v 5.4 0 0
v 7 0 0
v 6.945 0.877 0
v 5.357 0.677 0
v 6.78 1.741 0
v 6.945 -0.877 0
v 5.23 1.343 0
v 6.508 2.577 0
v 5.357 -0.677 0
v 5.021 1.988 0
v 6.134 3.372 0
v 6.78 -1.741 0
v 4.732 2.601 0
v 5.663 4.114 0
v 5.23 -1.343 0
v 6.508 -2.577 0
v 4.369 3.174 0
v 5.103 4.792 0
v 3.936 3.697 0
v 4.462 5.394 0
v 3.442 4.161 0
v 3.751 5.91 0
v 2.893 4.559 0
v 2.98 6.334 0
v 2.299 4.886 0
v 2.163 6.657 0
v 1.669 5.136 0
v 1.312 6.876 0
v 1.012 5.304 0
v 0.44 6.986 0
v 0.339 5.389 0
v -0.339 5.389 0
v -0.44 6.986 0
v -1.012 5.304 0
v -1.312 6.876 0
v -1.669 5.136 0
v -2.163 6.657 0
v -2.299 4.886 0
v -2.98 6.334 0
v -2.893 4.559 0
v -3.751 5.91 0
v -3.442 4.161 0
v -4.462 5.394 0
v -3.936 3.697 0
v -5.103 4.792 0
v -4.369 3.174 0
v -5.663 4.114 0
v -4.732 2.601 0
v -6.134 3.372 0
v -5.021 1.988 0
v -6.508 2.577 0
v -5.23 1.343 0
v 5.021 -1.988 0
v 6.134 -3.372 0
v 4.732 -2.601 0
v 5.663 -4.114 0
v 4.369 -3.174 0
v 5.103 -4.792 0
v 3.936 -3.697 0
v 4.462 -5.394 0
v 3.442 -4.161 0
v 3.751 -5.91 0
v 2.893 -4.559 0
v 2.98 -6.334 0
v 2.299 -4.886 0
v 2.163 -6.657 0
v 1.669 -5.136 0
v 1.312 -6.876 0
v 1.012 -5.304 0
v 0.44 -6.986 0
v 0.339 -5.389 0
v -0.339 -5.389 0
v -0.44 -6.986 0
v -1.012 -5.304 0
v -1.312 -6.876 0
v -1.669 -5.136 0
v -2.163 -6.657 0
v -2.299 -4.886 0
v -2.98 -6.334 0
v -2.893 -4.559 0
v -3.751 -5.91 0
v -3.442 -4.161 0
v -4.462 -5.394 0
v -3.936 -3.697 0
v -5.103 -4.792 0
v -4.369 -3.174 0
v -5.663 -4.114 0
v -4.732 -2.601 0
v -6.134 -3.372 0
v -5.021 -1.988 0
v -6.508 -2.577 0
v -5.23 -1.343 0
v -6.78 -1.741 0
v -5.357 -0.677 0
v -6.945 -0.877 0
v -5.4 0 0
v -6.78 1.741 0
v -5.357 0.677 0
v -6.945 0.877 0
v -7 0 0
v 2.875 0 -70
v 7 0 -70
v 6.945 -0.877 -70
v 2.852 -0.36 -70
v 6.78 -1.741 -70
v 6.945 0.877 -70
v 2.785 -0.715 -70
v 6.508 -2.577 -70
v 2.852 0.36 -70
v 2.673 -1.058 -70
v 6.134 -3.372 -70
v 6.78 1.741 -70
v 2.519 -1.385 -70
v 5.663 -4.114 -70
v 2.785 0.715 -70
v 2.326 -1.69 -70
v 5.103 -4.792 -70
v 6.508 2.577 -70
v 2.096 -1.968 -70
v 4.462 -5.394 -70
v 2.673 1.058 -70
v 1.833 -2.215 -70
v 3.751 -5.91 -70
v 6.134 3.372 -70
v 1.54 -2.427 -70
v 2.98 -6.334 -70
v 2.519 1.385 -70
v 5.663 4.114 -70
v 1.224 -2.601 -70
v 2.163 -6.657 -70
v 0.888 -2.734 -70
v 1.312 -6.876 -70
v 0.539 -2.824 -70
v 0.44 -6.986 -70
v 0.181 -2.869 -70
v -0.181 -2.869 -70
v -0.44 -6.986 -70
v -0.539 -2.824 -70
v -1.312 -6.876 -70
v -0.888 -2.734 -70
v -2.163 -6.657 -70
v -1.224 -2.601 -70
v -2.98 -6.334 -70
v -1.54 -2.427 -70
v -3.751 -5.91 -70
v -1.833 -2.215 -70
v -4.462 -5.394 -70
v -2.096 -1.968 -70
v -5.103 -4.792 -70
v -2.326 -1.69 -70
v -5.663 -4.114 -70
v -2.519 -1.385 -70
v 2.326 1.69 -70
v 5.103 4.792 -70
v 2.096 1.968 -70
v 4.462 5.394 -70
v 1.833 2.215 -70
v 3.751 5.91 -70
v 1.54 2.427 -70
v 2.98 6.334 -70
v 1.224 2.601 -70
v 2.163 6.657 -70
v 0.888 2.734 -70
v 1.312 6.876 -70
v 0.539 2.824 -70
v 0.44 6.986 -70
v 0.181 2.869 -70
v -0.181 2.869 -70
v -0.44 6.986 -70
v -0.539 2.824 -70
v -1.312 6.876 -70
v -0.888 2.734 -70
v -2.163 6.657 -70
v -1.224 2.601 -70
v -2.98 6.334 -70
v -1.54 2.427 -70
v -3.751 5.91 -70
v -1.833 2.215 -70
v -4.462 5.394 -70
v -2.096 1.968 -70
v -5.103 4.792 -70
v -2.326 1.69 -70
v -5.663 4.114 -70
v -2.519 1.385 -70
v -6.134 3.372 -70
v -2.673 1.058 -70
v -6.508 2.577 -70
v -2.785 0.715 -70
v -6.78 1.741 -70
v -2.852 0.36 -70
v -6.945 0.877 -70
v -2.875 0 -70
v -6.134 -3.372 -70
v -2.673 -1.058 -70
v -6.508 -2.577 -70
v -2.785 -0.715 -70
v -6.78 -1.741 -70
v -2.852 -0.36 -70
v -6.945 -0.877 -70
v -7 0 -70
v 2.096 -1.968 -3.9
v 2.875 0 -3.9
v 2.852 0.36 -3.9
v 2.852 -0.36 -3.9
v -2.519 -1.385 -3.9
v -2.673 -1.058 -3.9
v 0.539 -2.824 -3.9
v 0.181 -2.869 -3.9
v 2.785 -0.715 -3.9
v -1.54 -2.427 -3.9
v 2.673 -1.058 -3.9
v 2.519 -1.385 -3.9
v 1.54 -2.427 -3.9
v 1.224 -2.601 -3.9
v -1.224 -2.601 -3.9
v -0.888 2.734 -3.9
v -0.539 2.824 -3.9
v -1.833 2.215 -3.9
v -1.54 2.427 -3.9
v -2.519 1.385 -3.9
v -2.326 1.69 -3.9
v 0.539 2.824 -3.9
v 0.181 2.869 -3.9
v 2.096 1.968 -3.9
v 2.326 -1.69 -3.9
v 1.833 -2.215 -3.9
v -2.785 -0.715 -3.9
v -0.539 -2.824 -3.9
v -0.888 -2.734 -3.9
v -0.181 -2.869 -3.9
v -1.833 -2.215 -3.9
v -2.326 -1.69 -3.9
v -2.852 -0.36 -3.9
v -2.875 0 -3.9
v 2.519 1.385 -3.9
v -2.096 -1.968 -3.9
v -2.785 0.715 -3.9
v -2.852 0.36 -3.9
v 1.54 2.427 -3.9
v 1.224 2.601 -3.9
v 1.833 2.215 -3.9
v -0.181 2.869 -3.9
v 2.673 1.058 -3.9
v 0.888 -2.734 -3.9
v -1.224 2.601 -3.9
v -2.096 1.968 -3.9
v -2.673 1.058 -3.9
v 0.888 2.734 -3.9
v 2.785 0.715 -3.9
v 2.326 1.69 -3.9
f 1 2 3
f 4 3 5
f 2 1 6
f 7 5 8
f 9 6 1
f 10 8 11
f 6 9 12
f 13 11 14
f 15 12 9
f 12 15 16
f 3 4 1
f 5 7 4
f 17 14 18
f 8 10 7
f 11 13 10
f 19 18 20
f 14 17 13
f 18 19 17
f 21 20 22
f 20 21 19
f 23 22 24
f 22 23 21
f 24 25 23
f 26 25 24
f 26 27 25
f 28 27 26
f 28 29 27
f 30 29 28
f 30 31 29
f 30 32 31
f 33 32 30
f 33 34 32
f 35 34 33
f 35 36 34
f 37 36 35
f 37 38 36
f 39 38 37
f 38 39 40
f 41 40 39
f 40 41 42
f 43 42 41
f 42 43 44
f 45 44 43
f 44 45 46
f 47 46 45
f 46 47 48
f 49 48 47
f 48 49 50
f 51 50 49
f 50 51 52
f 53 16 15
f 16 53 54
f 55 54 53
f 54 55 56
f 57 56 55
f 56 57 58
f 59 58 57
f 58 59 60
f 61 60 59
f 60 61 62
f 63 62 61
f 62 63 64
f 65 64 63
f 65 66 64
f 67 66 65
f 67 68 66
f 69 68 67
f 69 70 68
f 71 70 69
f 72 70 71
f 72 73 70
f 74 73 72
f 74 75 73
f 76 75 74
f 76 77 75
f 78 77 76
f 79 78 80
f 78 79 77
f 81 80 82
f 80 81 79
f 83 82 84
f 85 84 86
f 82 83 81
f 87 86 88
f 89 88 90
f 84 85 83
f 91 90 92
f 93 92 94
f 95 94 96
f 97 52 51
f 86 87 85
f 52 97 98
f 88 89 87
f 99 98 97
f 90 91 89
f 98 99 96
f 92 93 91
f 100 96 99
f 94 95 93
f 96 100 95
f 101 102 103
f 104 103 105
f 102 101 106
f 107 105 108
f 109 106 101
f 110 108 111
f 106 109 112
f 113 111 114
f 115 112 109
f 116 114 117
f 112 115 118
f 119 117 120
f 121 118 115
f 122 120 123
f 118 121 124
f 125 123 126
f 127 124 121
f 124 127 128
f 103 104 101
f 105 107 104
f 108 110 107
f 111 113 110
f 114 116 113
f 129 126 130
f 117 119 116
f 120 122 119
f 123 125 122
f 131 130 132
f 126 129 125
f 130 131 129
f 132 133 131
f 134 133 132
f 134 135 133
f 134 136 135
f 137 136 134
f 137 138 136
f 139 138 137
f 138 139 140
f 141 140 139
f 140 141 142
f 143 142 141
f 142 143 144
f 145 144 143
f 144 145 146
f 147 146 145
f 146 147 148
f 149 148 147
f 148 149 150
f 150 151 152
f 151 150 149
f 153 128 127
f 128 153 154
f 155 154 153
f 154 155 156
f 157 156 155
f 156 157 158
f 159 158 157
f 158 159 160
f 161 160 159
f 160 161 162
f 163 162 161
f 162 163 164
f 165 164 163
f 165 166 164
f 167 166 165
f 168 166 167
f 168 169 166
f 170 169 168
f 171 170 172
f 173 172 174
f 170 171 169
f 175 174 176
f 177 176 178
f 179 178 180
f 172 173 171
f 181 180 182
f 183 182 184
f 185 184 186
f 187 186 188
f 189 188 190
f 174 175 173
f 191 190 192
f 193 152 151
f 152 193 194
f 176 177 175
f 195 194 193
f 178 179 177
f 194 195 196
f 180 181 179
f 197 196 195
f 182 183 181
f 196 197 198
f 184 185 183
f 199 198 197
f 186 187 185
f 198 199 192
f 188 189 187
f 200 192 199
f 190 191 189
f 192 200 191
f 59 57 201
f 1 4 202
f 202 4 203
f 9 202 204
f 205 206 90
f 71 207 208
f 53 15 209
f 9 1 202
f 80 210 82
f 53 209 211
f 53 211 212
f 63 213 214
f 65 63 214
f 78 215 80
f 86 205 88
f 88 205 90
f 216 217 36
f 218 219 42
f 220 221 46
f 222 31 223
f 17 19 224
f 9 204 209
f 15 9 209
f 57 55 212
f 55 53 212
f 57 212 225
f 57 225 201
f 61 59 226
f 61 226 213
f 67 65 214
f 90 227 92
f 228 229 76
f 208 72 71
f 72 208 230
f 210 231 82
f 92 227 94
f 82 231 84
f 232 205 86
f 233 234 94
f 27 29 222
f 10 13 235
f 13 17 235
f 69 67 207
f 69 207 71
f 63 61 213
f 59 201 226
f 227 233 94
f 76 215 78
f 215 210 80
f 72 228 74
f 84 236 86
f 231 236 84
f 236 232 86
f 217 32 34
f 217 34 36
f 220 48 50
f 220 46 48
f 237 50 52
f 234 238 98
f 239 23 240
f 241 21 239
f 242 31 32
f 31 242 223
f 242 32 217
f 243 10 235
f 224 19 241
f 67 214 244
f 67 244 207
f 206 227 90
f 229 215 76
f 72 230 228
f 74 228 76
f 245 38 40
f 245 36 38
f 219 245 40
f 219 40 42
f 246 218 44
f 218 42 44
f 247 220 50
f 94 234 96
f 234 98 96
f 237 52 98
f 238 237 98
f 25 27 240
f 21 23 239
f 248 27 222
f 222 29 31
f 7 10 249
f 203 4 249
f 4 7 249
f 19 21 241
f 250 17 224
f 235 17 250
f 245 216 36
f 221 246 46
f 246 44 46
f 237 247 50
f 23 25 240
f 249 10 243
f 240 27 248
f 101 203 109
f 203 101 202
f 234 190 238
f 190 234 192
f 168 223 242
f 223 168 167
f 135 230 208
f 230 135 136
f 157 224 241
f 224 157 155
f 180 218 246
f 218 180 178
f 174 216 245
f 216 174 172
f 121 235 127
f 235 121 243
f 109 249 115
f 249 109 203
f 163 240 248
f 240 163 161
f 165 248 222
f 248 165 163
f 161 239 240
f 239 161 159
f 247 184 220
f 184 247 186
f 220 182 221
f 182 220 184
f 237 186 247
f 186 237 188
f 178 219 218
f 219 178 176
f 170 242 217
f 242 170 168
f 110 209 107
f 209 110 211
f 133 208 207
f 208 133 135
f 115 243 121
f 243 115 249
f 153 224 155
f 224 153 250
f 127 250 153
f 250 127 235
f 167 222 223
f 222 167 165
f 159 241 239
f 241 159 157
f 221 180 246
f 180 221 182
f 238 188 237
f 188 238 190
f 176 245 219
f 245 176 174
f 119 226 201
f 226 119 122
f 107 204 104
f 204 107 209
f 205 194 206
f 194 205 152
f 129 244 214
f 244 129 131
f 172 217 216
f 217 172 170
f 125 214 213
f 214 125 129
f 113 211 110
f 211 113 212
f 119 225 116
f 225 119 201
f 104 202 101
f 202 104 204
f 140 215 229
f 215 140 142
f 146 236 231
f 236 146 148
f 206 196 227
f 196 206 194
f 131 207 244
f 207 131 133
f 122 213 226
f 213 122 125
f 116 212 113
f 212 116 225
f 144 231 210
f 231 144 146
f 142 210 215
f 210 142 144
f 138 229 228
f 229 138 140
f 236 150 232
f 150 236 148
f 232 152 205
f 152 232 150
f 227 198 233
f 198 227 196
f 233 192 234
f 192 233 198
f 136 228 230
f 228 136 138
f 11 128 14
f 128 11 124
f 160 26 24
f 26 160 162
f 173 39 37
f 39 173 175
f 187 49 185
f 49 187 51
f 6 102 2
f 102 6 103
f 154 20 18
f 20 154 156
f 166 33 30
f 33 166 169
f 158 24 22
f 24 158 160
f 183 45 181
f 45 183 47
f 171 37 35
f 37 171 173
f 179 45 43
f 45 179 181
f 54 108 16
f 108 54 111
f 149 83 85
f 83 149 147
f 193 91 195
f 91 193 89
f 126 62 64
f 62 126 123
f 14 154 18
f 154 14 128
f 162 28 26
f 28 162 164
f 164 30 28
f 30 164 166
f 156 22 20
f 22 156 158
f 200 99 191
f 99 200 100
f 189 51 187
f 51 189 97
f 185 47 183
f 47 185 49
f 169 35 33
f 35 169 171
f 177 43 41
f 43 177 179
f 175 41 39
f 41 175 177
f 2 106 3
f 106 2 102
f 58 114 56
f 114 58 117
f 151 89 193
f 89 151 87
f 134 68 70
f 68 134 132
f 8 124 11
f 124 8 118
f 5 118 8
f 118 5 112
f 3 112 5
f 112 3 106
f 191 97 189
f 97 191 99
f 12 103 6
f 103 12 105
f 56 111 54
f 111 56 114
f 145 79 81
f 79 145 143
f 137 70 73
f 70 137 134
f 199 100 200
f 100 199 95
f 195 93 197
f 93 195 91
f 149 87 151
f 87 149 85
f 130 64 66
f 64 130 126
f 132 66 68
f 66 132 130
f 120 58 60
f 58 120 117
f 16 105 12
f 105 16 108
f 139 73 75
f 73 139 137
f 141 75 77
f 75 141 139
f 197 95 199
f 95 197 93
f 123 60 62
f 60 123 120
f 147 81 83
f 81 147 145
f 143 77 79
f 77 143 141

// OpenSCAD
$fn = 50;


difference() {
	union() {
		translate(v = [0, 0, -70.0000000000]) {
			cylinder(h = 70, r = 7.0000000000);
		}
		cylinder(h = 0, r = 16.0000000000);
	}
	union() {
		translate(v = [0, 0, 0]) {
			rotate(a = [0, 0, 0]) {
				difference() {
					union() {
						#translate(v = [0, 0, -70.0000000000]) {
							cylinder(h = 70, r = 2.6000000000);
						}
						#translate(v = [0, 0, -3.9000000000]) {
							cylinder(h = 3.9000000000, r1 = 2.8750000000, r2 = 5.4000000000);
						}
						#translate(v = [0, 0, -70.0000000000]) {
							cylinder(h = 70, r = 2.8750000000);
						}
						#translate(v = [0, 0, -70.0000000000]) {
							cylinder(h = 70, r = 2.6000000000);
						}
					}
					union();
				}
			}
		}
	}
}
